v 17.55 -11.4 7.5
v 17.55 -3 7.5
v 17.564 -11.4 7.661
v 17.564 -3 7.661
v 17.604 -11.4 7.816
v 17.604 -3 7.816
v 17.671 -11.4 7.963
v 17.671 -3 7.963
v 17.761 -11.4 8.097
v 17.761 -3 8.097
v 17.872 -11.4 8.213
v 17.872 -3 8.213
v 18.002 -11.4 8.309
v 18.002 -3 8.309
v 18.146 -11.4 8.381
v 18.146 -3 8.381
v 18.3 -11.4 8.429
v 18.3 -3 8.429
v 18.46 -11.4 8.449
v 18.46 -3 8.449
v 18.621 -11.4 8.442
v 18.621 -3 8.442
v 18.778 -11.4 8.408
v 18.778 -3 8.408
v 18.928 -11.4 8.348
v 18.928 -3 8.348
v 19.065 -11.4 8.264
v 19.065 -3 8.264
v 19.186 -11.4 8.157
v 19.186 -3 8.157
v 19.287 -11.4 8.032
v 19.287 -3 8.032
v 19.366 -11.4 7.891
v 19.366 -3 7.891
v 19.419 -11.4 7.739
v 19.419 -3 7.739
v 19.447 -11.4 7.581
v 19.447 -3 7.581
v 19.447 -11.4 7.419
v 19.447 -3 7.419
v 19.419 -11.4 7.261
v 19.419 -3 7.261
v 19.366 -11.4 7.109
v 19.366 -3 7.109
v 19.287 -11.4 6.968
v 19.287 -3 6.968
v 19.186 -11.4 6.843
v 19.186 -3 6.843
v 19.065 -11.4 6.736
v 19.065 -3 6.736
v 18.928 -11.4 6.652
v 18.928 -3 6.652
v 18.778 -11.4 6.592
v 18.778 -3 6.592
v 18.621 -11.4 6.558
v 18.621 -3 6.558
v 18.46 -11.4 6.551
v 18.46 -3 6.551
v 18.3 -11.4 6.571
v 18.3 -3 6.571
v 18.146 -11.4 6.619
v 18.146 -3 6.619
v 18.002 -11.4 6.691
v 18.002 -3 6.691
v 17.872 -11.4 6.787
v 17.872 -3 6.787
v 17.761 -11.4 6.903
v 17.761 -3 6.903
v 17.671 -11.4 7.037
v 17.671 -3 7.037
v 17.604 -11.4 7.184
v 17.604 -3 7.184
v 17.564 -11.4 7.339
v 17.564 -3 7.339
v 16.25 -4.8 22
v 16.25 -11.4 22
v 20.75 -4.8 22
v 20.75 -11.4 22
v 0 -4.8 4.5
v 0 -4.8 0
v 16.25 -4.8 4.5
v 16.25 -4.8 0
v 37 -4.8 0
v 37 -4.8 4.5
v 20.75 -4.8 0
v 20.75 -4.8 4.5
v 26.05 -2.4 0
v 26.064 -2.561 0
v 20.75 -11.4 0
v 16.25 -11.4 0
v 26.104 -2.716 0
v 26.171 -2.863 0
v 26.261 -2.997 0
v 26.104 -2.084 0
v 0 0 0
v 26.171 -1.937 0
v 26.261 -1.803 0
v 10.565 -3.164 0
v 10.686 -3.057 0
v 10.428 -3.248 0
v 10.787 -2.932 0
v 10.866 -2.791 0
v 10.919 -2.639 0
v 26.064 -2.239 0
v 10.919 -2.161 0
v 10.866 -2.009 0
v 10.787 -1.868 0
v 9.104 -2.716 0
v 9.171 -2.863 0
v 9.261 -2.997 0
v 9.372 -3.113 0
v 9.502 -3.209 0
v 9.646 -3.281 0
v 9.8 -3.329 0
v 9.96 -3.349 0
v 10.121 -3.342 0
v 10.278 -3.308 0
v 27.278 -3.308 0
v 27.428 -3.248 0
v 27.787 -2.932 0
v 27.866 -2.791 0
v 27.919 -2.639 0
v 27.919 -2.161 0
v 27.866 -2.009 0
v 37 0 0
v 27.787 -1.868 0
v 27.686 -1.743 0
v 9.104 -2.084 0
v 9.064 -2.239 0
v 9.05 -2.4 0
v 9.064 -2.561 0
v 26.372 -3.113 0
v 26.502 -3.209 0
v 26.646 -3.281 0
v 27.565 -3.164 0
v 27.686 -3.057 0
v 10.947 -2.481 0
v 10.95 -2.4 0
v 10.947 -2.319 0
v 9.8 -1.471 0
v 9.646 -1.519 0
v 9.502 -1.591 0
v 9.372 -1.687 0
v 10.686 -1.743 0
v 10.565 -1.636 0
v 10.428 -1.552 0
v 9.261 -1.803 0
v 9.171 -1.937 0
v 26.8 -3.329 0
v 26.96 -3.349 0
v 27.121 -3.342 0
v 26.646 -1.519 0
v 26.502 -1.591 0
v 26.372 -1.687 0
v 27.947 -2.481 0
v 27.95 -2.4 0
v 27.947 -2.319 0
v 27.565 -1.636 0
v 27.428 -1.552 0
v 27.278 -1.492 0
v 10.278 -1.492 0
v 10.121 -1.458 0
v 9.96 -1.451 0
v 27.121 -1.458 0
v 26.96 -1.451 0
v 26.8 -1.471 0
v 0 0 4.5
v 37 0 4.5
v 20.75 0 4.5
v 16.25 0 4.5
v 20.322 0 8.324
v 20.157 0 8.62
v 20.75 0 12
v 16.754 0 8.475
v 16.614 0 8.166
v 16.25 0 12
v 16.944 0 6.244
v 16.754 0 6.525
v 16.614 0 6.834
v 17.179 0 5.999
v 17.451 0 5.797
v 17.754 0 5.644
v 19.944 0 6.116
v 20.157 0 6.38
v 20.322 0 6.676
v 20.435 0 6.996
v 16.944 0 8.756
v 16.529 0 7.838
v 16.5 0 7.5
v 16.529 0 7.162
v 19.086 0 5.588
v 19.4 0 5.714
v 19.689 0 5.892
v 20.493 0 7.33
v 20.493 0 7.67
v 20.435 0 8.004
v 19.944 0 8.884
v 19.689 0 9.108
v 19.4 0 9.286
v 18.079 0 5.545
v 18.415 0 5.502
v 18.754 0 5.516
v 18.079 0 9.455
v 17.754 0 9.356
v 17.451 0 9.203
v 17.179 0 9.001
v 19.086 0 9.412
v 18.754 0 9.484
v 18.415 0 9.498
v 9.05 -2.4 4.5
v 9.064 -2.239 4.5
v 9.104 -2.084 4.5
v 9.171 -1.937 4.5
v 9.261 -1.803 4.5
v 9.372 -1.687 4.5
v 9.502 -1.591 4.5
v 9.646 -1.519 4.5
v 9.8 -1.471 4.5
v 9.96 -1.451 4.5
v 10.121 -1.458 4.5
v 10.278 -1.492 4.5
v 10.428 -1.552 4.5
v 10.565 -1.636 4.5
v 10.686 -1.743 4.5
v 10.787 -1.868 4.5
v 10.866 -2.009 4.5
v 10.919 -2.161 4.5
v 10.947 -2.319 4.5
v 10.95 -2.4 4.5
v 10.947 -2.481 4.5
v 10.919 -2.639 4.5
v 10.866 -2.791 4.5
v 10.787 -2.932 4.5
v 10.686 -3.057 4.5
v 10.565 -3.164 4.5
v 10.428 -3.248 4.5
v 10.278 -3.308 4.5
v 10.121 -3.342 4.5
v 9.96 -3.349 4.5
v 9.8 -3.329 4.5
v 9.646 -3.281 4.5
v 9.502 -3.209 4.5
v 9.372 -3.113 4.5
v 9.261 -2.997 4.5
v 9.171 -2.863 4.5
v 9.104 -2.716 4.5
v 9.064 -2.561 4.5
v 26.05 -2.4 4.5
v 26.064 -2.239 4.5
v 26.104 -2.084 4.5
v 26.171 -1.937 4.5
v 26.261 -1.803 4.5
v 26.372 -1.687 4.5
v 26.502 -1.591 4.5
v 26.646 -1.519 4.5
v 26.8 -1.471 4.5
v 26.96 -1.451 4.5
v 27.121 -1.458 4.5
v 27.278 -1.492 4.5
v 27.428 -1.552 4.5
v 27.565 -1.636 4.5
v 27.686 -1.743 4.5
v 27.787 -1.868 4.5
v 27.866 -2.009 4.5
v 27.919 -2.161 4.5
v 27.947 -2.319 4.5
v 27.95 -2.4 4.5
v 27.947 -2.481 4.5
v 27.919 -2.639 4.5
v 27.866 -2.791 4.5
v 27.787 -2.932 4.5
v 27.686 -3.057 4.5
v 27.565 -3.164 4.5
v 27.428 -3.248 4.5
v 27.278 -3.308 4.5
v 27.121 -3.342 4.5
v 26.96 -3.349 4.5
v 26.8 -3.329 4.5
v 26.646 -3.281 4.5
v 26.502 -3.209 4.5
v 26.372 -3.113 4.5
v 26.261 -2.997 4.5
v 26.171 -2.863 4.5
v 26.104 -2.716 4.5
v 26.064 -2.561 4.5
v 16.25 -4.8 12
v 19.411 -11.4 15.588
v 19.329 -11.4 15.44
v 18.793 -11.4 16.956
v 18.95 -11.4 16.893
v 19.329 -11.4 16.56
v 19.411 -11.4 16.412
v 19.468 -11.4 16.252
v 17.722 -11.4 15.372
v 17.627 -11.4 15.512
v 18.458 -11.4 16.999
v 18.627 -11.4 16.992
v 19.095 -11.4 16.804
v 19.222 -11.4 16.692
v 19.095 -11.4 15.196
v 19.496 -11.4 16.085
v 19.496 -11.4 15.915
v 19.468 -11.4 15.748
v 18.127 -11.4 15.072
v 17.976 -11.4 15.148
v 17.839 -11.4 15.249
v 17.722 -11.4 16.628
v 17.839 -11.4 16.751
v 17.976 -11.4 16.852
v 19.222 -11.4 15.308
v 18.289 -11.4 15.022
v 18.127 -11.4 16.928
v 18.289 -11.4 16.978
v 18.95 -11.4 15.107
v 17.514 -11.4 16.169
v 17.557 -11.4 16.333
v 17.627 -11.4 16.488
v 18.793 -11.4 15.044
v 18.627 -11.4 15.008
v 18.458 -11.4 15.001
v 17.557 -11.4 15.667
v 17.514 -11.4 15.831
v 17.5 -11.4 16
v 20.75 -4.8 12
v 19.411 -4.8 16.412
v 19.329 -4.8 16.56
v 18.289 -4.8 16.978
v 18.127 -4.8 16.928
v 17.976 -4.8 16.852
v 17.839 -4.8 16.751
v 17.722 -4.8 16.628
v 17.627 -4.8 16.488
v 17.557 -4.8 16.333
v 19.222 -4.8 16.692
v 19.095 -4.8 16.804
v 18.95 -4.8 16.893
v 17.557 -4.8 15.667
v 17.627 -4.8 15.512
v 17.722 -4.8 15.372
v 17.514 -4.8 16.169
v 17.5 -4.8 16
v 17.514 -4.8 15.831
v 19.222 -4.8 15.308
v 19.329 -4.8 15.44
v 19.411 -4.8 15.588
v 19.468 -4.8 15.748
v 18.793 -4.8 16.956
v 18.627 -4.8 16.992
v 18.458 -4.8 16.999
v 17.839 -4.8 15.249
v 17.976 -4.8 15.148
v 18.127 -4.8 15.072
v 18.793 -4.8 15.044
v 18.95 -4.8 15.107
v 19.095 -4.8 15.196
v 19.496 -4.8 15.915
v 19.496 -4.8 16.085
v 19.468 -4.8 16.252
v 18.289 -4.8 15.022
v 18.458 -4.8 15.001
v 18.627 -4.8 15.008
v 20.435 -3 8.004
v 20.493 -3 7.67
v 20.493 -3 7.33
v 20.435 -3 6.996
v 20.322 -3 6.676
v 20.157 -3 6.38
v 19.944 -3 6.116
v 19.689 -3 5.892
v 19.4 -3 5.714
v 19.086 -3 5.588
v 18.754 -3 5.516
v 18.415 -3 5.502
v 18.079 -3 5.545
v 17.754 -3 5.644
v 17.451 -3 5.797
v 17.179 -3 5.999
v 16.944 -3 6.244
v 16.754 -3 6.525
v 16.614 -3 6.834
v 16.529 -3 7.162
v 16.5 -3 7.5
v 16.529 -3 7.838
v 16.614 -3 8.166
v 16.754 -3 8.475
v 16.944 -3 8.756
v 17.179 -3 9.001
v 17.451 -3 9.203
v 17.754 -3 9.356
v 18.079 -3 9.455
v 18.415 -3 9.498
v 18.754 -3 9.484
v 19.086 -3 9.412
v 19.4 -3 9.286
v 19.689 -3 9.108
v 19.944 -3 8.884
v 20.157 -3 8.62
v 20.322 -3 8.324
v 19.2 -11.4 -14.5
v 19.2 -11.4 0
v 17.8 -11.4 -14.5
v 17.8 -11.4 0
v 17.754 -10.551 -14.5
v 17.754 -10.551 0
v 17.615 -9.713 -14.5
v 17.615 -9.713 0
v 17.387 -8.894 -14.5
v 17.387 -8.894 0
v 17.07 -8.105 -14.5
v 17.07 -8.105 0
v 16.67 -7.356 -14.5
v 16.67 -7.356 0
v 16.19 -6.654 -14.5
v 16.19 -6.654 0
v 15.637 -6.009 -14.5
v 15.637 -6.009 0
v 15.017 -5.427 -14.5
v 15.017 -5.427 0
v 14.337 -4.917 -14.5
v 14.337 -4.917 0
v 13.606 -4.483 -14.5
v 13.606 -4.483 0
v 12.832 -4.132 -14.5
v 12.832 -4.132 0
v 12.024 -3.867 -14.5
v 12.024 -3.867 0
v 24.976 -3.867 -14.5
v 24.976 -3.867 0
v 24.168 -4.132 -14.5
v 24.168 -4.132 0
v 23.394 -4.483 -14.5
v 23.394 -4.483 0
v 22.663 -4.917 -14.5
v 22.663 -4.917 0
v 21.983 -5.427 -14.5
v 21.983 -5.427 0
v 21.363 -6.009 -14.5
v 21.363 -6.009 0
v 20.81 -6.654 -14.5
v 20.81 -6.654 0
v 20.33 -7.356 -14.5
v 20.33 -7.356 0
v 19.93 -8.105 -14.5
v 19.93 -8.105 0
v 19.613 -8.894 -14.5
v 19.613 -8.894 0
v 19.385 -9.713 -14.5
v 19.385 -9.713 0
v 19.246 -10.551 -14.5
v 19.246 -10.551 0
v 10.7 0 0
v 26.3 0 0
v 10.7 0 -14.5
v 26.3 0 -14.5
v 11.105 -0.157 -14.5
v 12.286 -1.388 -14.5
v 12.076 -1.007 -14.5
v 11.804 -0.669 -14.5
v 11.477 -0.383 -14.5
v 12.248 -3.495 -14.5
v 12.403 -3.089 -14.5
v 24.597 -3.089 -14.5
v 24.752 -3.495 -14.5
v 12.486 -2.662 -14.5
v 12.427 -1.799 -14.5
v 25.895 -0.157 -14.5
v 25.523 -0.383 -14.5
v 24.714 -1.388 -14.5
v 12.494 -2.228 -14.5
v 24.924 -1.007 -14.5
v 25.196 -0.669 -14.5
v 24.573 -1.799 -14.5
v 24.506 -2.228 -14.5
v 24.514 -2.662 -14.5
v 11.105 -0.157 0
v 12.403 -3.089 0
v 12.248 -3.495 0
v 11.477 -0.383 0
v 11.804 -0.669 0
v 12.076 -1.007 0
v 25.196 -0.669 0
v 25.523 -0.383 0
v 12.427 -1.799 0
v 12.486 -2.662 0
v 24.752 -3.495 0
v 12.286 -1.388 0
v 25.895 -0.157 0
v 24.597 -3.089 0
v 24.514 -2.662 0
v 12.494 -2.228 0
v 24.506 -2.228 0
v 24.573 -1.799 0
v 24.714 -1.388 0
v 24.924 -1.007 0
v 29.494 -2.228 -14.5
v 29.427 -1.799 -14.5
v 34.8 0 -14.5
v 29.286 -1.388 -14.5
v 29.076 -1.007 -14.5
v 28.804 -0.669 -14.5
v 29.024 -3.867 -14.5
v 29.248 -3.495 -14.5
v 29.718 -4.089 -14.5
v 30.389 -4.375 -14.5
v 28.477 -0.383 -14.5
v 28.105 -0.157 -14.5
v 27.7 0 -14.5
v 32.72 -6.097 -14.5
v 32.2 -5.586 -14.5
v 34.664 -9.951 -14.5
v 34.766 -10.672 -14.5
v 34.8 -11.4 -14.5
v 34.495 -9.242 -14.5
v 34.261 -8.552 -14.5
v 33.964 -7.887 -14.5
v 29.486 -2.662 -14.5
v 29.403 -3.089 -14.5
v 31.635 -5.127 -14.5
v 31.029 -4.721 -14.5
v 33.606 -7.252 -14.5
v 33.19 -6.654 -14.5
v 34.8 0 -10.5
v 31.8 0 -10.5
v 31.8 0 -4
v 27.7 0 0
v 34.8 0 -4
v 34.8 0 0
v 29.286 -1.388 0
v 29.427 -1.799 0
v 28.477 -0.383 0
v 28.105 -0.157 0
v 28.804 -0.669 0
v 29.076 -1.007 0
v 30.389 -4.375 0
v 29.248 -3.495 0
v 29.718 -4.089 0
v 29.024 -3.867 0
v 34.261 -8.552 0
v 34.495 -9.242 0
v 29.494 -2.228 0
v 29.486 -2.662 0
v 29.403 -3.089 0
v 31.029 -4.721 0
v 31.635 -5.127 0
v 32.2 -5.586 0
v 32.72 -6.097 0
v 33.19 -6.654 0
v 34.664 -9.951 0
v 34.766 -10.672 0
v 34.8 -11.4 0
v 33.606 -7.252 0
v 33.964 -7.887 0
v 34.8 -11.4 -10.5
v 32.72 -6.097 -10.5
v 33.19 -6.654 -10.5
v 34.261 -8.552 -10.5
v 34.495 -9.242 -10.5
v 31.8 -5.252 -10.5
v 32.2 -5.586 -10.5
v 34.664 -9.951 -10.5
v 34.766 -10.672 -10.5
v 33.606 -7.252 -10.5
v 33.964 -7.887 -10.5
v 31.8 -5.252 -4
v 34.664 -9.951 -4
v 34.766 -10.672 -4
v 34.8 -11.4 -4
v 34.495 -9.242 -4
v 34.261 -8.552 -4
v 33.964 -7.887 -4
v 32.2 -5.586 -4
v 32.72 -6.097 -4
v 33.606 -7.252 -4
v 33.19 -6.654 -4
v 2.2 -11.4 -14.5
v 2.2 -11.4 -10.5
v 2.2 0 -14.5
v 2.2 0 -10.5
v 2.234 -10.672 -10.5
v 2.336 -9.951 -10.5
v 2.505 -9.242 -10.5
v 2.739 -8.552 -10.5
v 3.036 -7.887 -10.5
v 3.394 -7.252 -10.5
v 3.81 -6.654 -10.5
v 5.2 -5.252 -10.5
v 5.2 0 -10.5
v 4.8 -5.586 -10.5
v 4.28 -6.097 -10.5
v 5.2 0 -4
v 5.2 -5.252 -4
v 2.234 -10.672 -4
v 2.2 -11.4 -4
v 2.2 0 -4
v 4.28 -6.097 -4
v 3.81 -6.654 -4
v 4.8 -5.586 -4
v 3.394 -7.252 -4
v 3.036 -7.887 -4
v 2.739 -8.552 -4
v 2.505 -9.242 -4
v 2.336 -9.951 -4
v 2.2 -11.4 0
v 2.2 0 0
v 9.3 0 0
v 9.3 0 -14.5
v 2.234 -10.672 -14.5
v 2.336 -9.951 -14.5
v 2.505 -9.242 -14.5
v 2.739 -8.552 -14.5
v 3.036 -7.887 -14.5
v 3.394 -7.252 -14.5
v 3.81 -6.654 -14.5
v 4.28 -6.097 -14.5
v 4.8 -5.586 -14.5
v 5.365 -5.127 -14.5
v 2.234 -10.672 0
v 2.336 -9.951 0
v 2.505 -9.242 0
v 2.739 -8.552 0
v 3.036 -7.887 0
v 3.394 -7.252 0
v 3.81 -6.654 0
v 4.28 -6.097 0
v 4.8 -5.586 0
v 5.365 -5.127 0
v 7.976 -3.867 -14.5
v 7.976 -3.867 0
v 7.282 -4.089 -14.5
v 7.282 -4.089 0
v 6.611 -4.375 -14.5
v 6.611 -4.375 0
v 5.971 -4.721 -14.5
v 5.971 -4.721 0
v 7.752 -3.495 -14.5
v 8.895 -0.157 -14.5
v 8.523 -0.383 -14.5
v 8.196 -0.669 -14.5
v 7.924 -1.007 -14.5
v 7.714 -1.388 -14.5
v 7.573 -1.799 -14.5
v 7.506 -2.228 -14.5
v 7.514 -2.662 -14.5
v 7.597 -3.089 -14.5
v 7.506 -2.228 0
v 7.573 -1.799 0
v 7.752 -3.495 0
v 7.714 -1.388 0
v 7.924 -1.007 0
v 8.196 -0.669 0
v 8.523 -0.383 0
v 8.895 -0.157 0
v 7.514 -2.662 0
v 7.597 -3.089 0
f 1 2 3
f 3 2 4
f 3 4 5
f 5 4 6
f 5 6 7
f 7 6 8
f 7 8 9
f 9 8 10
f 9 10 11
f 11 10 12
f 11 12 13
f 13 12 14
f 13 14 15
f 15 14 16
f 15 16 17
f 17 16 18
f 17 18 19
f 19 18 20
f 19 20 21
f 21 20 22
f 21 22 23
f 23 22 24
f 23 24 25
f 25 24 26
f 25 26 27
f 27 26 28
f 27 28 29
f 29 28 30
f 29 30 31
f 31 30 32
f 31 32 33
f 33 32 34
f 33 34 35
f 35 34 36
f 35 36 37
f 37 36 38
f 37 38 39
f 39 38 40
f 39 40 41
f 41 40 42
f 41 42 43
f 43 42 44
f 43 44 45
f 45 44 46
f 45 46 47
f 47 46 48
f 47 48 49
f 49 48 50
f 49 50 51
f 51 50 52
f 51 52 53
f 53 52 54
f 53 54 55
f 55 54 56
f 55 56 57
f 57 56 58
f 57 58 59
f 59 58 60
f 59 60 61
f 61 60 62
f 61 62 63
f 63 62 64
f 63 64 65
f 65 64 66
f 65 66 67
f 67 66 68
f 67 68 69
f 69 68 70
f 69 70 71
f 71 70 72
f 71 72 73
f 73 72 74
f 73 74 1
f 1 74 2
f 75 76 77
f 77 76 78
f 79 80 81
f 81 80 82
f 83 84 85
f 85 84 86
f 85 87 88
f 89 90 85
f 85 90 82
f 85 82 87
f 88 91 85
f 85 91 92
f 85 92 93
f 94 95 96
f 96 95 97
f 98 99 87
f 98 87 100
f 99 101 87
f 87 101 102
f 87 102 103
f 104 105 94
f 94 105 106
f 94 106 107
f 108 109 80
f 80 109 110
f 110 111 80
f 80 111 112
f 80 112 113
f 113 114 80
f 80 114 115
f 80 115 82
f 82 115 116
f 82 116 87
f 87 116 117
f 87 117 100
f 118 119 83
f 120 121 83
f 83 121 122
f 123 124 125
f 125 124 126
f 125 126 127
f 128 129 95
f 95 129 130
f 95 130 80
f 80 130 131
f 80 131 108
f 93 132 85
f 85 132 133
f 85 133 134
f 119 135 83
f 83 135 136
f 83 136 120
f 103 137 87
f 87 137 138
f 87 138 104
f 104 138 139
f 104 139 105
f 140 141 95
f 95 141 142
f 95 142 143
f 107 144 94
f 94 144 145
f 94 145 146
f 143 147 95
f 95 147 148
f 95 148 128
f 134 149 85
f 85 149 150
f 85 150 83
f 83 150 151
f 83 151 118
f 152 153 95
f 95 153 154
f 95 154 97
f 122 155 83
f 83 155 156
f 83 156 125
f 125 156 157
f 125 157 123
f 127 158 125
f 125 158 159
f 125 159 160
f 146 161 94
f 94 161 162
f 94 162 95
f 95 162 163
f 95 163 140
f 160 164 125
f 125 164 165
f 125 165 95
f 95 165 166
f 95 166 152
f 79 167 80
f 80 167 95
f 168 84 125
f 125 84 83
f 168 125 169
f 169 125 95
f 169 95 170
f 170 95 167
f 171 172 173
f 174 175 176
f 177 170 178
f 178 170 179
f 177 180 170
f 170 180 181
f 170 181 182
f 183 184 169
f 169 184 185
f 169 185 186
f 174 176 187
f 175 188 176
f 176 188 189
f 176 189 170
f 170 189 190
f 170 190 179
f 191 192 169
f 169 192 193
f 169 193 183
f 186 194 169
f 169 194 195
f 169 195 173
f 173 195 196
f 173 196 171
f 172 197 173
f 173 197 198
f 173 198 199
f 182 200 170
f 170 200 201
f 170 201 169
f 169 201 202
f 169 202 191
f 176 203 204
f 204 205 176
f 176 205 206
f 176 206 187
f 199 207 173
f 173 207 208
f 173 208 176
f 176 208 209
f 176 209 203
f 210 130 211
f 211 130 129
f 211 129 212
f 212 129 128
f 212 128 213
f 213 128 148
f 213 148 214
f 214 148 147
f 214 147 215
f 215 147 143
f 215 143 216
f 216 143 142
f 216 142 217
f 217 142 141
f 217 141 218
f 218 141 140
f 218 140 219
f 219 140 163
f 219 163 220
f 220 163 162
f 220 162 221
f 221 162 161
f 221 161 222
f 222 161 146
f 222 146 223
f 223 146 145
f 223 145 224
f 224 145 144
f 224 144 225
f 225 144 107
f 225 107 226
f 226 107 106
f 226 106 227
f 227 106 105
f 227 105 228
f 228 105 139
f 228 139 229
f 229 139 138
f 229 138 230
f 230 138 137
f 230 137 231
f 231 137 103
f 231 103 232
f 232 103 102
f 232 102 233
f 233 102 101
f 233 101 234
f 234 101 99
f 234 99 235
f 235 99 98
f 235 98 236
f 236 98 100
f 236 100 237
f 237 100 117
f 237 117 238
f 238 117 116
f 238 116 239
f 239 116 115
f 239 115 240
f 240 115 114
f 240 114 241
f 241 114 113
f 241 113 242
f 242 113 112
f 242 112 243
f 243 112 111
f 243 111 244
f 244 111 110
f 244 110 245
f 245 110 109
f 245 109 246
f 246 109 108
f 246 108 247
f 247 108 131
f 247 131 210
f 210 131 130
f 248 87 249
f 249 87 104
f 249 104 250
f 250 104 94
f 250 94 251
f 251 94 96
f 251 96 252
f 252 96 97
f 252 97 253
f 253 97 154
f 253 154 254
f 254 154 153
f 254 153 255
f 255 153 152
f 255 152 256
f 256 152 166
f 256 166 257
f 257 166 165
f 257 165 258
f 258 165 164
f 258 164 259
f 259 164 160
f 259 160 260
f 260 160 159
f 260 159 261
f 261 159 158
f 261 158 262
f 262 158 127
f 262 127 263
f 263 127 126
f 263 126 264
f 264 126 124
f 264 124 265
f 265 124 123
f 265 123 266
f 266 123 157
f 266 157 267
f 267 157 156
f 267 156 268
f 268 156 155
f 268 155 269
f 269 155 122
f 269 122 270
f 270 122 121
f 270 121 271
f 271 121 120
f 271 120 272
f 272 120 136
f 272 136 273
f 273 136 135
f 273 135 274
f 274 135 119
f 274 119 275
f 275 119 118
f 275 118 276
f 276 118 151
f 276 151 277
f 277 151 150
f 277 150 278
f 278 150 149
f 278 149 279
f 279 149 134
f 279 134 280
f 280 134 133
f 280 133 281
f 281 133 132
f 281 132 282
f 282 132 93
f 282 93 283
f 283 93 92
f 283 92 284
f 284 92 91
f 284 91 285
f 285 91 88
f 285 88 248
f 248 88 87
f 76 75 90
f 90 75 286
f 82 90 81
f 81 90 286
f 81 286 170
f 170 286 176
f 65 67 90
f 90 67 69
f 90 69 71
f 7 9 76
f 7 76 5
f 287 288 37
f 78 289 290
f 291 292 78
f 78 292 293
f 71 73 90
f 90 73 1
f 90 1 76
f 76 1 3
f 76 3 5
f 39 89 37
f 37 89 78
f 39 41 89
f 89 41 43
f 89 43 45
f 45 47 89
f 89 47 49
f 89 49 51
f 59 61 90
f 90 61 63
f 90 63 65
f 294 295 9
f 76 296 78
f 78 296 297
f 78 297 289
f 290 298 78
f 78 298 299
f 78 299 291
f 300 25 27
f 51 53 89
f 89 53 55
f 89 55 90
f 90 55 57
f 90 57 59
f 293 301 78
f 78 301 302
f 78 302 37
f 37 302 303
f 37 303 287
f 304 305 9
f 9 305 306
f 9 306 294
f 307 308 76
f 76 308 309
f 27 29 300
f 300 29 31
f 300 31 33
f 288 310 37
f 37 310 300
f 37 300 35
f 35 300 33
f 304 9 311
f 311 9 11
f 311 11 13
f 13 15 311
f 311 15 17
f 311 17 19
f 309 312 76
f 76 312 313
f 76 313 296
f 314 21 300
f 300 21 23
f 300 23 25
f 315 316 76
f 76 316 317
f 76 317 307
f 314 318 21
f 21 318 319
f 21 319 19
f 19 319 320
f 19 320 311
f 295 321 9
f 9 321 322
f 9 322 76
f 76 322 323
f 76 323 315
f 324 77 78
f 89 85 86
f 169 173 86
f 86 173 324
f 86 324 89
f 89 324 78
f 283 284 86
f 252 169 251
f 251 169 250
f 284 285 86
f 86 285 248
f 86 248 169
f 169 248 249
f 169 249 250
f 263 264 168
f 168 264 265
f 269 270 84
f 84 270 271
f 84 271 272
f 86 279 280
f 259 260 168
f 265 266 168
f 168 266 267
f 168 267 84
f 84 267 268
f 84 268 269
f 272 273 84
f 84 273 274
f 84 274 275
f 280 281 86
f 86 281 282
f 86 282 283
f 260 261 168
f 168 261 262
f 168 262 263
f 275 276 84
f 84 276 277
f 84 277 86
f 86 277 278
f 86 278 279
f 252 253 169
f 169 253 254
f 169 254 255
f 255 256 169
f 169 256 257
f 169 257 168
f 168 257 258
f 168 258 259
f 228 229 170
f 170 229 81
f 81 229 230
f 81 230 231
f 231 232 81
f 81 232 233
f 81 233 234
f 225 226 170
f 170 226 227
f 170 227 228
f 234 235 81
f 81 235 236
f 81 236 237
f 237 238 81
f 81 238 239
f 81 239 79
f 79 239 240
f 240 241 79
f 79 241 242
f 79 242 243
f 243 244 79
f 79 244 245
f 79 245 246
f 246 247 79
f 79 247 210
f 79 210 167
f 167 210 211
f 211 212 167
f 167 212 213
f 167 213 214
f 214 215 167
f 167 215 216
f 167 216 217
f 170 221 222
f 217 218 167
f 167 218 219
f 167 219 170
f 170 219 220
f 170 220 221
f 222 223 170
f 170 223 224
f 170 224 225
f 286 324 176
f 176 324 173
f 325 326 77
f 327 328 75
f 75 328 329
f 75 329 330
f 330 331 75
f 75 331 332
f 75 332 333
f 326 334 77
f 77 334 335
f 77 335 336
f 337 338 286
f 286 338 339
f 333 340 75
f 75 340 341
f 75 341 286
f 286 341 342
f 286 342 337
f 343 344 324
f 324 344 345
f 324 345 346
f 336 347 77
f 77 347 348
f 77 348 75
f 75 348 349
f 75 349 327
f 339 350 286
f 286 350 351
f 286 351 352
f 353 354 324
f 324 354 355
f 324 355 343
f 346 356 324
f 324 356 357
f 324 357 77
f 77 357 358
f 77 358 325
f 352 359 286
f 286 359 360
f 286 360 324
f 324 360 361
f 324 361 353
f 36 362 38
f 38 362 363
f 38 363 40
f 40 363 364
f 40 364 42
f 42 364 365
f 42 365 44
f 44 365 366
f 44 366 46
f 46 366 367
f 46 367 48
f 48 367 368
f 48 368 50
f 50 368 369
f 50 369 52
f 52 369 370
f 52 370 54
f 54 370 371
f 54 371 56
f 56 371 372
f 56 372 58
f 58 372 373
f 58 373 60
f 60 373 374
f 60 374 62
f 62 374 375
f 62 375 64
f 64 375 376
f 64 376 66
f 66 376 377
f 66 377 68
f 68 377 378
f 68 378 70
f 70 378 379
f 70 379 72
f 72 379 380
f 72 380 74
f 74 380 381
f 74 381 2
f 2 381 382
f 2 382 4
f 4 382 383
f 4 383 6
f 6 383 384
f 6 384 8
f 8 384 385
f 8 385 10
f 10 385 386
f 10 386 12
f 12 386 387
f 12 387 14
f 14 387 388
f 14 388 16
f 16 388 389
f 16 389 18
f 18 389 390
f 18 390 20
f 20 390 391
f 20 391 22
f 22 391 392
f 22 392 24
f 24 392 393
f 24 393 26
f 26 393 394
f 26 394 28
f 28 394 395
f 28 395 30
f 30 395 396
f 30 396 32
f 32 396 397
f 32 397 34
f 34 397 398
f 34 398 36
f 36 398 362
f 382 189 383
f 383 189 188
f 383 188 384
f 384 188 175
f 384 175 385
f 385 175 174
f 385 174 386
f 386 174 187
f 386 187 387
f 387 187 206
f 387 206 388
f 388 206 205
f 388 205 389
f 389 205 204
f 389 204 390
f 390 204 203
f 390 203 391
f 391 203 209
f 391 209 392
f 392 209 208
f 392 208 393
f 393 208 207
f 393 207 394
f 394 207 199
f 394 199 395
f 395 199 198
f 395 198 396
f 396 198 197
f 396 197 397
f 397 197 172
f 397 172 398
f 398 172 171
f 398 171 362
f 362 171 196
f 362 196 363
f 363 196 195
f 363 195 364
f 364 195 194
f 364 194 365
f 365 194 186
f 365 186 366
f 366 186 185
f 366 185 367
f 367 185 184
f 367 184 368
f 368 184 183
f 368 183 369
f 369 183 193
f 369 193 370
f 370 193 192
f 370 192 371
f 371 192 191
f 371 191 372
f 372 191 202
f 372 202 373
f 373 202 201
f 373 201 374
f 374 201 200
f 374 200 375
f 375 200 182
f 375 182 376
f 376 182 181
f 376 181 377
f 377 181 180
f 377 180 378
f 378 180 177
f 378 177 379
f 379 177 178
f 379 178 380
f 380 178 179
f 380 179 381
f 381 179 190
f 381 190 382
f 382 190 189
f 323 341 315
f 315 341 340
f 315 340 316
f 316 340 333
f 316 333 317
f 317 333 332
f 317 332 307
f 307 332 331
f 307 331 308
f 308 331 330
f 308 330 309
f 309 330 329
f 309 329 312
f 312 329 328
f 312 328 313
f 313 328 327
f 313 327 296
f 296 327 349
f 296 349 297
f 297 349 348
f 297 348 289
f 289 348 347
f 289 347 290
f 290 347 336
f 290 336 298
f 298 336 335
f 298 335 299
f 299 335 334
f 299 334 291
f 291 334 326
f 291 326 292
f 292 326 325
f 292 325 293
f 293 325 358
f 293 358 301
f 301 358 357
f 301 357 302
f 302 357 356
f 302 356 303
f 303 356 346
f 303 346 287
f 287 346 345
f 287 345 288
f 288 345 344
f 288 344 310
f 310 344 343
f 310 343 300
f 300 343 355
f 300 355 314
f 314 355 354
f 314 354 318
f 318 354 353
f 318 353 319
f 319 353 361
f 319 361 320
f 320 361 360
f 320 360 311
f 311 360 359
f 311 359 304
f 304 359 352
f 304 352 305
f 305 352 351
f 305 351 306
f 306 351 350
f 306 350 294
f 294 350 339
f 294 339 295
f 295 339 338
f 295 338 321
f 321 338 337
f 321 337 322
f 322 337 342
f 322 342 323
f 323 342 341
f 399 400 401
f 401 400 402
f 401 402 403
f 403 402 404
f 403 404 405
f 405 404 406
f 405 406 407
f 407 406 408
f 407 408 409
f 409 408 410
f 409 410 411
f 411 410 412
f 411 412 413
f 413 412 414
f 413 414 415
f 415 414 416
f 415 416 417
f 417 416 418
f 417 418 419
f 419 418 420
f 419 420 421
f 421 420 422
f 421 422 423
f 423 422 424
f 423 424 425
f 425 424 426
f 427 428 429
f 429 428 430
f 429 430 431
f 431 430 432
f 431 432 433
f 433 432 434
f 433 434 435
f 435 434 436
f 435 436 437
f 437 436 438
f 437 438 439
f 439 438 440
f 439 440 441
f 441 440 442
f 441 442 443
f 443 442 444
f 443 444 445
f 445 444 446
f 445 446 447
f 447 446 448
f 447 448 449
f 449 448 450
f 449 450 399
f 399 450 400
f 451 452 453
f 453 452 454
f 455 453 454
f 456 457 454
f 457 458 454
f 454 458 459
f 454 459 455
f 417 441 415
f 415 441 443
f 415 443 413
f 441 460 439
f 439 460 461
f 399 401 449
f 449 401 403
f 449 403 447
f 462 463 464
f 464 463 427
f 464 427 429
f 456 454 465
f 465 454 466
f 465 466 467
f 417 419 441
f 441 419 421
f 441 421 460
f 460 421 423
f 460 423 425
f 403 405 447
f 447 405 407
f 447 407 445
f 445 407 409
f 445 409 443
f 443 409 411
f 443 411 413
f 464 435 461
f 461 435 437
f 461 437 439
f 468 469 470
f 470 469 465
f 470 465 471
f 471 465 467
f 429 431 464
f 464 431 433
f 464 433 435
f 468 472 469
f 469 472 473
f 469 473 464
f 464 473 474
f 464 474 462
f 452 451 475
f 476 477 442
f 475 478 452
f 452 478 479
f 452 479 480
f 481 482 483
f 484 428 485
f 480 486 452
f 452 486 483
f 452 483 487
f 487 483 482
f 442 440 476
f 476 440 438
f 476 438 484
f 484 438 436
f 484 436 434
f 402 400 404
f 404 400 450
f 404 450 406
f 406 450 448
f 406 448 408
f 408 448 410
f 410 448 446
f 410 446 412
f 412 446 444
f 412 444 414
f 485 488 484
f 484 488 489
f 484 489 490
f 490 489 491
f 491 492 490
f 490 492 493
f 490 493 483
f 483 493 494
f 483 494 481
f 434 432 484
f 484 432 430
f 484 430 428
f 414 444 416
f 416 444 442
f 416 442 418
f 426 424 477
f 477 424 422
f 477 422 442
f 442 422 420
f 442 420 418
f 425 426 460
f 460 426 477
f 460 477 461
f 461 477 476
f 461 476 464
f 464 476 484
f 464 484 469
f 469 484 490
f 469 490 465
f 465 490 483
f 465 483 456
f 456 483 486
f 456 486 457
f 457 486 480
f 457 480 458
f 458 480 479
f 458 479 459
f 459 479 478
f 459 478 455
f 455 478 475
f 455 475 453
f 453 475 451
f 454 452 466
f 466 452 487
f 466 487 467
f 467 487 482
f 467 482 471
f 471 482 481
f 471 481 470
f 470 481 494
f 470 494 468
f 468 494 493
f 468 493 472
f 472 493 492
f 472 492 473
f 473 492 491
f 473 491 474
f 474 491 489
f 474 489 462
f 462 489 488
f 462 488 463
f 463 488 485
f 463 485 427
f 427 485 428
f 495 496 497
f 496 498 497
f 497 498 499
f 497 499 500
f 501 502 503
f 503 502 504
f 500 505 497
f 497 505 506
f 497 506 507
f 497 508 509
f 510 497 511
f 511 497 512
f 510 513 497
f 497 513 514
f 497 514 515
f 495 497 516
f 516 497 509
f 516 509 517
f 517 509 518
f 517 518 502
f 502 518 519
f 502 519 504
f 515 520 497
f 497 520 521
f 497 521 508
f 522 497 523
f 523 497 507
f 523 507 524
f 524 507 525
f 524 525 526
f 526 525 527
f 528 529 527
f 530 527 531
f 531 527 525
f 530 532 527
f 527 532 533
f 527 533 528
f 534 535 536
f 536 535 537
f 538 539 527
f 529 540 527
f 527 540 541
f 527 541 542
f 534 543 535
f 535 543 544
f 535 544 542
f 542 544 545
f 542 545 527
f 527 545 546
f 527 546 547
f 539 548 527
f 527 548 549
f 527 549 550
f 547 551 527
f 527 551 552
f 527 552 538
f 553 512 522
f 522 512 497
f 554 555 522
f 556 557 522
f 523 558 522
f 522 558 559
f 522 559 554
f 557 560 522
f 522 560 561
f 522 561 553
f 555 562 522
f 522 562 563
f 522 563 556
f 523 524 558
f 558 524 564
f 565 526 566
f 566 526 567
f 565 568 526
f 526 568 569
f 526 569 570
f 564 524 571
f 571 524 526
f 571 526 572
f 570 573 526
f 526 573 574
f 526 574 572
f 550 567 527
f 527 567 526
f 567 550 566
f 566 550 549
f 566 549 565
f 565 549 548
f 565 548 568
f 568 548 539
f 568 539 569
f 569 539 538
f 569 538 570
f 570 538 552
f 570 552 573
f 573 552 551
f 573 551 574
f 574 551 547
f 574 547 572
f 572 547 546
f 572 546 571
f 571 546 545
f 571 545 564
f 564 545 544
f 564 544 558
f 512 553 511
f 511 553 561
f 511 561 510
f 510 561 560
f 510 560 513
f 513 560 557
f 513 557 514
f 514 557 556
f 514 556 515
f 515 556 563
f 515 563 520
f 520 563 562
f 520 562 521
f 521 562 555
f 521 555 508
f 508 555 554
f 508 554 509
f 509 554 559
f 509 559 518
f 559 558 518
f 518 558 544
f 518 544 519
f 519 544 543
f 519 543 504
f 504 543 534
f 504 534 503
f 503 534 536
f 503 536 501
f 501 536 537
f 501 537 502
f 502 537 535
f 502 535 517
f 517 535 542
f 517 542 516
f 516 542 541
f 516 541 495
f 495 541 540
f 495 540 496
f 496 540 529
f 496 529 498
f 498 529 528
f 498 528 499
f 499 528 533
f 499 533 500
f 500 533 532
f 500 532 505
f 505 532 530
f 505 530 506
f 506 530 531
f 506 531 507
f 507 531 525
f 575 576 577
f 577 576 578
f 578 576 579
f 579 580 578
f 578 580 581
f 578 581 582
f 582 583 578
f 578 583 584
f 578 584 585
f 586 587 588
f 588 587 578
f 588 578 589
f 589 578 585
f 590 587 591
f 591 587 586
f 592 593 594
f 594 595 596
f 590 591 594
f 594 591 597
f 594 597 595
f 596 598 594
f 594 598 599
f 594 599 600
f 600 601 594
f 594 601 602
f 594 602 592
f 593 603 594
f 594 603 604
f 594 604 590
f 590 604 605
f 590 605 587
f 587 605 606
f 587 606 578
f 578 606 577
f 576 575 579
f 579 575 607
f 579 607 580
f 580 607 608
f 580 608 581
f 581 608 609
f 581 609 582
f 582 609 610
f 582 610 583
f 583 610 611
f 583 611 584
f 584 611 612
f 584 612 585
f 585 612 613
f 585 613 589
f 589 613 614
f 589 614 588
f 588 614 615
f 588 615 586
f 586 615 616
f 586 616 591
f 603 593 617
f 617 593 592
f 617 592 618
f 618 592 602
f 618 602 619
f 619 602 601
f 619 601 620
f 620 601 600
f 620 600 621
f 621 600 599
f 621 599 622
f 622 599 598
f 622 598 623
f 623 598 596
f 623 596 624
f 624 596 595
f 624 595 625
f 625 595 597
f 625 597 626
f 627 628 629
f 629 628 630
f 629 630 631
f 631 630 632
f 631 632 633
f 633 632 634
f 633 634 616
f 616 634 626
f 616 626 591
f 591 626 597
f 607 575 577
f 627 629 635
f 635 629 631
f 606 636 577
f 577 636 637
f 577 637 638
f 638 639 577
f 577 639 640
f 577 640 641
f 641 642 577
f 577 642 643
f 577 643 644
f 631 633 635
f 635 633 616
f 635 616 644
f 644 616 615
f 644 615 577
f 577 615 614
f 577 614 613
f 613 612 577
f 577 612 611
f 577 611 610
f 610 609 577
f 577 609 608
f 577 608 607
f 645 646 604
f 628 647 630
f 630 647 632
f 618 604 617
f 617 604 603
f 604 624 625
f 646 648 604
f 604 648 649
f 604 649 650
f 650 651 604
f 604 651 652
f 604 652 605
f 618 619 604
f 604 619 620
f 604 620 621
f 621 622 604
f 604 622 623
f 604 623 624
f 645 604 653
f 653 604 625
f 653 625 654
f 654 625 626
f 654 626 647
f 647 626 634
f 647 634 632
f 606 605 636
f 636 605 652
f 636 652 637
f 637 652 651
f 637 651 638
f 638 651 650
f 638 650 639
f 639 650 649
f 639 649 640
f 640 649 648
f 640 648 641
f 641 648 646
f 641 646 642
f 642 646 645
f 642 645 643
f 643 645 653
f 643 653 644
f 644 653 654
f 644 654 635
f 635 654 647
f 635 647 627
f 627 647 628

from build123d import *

# Parameters (mm, degrees)
SKETCH_2_W          = 37
SKETCH_2_H          = 4.8
SKETCH_2_R          = 0.95
EXTRUDE_1_DEPTH     = 4
EXTRUDE_2_DEPTH     = 11.4
SKETCH_4_R          = 7.8
CUT_EXTRUDE_1_DEPTH = 15
SKETCH_5_R          = 2.5
CUT_EXTRUDE_2_DEPTH = 15
SKETCH_6_W          = 4.5
SKETCH_6_H          = 11.4
EXTRUDE_3_DEPTH     = 22
SKETCH_7_W          = 37
SKETCH_7_H          = 4.8
SKETCH_7_R          = 0.95
EXTRUDE_4_DEPTH     = 0.5
SKETCH_8_W          = 4.5
SKETCH_8_H          = 10
CUT_EXTRUDE_3_DEPTH = 4.8
SKETCH_9_R          = 0.95
CUT_EXTRUDE_4_DEPTH = 20
SKETCH_10_R         = 2
CUT_EXTRUDE_8_DEPTH = 3
SKETCH_11_R         = 1
CUT_EXTRUDE_9_DEPTH = 13


with BuildPart() as part:
    # 草图2 → 凸台-拉伸1 (new body)
    with BuildSketch(Plane.XY):
        with Locations((18.5, -2.4)):
            Rectangle(SKETCH_2_W, SKETCH_2_H)
        with Locations((10, -2.4)):
            Circle(SKETCH_2_R, mode=Mode.SUBTRACT)
        with Locations((27, -2.4)):
            Circle(SKETCH_2_R, mode=Mode.SUBTRACT)
    extrude(amount=EXTRUDE_1_DEPTH)

    # 草图6 → 凸台-拉伸3 (add)
    with BuildSketch(Plane.XY):
        with Locations((18.5, -5.7)):
            Rectangle(SKETCH_6_W, SKETCH_6_H)
    extrude(amount=EXTRUDE_3_DEPTH)

    # 草图7 → 凸台-拉伸4 (add)
    with BuildSketch(Plane.XY.offset(4)):
        with Locations((18.5, -2.4)):
            Rectangle(SKETCH_7_W, SKETCH_7_H)
        with Locations((10, -2.4)):
            Circle(SKETCH_7_R, mode=Mode.SUBTRACT)
        with Locations((27, -2.4)):
            Circle(SKETCH_7_R, mode=Mode.SUBTRACT)
    extrude(amount=EXTRUDE_4_DEPTH)

    # 草图8 → 切除-拉伸3 (cut)
    with BuildSketch(Plane(origin=(0, 0, 0), x_dir=(1, 0, 0), z_dir=(0, 1, 0))):
        with Locations((18.5, -17)):
            Rectangle(SKETCH_8_W, SKETCH_8_H)
    extrude(amount=-CUT_EXTRUDE_3_DEPTH, mode=Mode.SUBTRACT)

    # 草图9 → 切除-拉伸4 (cut)
    with BuildSketch(Plane(origin=(0, 0, 0), x_dir=(1, 0, 0), z_dir=(0, 1, 0))):
        with Locations(Location((18.5, -7.5, 0), (0, 0, 180))):
            Circle(SKETCH_9_R)
    extrude(amount=-CUT_EXTRUDE_4_DEPTH, mode=Mode.SUBTRACT)

    # 草图10 → 切除-拉伸8 (cut)
    with BuildSketch(Plane(origin=(0, 0, 0), x_dir=(1, 0, 0), z_dir=(0, 1, 0))):
        with Locations(Location((18.5, -7.5, 0), (0, 0, 180))):
            Circle(SKETCH_10_R)
    extrude(amount=-CUT_EXTRUDE_8_DEPTH, mode=Mode.SUBTRACT)

    # 草图11 → 切除-拉伸9 (cut)
    with BuildSketch(Plane(origin=(0, -4.8, 0), x_dir=(1, 0, 0), z_dir=(0, 1, 0))):
        with Locations(Location((18.5, -16, 0), (0, 0, 180))):
            Circle(SKETCH_11_R)
    extrude(amount=-CUT_EXTRUDE_9_DEPTH, mode=Mode.SUBTRACT)


with BuildPart() as body_2:
    # 草图3 → 凸台-拉伸2 (new body)
    with BuildSketch(Plane(origin=(0, 0, 0), x_dir=(1, 0, 0), z_dir=(0, 1, 0))):
        Polygon((2.2, 0), (2.2, 4), (5.2, 4), (5.2, 10.5), (2.2, 10.5), (2.2, 14.5), (34.8, 14.5), (34.8, 10.5), (31.8, 10.5), (31.8, 4), (34.8, 4), (34.8, 0), align=None)
    extrude(amount=-EXTRUDE_2_DEPTH)

    # 草图4 → 切除-拉伸1 (cut)
    with BuildSketch(Plane.XY):
        with Locations((10, -11.4)):
            Circle(SKETCH_4_R)
        with Locations((27, -11.4)):
            Circle(SKETCH_4_R)
    extrude(amount=-CUT_EXTRUDE_1_DEPTH, mode=Mode.SUBTRACT)

    # 草图5 → 切除-拉伸2 (cut)
    with BuildSketch(Plane.XY):
        with Locations((10, -2.4)):
            Circle(SKETCH_5_R)
        with Locations((27, -2.4)):
            Circle(SKETCH_5_R)
    extrude(amount=-CUT_EXTRUDE_2_DEPTH, mode=Mode.SUBTRACT)


with BuildPart() as cut_extrude_2_piece_1:
    # of the separate pieces the step leaves, piece 1, a body of its own (cut_extrude_2_pieces)
    add(body_2.part.solids().sort_by_distance((26.3, 0, 0))[0])


with BuildPart() as cut_extrude_2_piece_2:
    # of the separate pieces the step leaves, piece 2, a body of its own (cut_extrude_2_pieces)
    add(body_2.part.solids().sort_by_distance((2.2, 0, 0))[0])


with BuildPart() as cut_extrude_2_piece_3:
    # of the separate pieces the step leaves, piece 3, a body of its own (cut_extrude_2_pieces)
    add(body_2.part.solids().sort_by_distance((34.8, 0, 0))[0])


solid = Compound([part.part, cut_extrude_2_piece_1.part, cut_extrude_2_piece_2.part, cut_extrude_2_piece_3.part])
